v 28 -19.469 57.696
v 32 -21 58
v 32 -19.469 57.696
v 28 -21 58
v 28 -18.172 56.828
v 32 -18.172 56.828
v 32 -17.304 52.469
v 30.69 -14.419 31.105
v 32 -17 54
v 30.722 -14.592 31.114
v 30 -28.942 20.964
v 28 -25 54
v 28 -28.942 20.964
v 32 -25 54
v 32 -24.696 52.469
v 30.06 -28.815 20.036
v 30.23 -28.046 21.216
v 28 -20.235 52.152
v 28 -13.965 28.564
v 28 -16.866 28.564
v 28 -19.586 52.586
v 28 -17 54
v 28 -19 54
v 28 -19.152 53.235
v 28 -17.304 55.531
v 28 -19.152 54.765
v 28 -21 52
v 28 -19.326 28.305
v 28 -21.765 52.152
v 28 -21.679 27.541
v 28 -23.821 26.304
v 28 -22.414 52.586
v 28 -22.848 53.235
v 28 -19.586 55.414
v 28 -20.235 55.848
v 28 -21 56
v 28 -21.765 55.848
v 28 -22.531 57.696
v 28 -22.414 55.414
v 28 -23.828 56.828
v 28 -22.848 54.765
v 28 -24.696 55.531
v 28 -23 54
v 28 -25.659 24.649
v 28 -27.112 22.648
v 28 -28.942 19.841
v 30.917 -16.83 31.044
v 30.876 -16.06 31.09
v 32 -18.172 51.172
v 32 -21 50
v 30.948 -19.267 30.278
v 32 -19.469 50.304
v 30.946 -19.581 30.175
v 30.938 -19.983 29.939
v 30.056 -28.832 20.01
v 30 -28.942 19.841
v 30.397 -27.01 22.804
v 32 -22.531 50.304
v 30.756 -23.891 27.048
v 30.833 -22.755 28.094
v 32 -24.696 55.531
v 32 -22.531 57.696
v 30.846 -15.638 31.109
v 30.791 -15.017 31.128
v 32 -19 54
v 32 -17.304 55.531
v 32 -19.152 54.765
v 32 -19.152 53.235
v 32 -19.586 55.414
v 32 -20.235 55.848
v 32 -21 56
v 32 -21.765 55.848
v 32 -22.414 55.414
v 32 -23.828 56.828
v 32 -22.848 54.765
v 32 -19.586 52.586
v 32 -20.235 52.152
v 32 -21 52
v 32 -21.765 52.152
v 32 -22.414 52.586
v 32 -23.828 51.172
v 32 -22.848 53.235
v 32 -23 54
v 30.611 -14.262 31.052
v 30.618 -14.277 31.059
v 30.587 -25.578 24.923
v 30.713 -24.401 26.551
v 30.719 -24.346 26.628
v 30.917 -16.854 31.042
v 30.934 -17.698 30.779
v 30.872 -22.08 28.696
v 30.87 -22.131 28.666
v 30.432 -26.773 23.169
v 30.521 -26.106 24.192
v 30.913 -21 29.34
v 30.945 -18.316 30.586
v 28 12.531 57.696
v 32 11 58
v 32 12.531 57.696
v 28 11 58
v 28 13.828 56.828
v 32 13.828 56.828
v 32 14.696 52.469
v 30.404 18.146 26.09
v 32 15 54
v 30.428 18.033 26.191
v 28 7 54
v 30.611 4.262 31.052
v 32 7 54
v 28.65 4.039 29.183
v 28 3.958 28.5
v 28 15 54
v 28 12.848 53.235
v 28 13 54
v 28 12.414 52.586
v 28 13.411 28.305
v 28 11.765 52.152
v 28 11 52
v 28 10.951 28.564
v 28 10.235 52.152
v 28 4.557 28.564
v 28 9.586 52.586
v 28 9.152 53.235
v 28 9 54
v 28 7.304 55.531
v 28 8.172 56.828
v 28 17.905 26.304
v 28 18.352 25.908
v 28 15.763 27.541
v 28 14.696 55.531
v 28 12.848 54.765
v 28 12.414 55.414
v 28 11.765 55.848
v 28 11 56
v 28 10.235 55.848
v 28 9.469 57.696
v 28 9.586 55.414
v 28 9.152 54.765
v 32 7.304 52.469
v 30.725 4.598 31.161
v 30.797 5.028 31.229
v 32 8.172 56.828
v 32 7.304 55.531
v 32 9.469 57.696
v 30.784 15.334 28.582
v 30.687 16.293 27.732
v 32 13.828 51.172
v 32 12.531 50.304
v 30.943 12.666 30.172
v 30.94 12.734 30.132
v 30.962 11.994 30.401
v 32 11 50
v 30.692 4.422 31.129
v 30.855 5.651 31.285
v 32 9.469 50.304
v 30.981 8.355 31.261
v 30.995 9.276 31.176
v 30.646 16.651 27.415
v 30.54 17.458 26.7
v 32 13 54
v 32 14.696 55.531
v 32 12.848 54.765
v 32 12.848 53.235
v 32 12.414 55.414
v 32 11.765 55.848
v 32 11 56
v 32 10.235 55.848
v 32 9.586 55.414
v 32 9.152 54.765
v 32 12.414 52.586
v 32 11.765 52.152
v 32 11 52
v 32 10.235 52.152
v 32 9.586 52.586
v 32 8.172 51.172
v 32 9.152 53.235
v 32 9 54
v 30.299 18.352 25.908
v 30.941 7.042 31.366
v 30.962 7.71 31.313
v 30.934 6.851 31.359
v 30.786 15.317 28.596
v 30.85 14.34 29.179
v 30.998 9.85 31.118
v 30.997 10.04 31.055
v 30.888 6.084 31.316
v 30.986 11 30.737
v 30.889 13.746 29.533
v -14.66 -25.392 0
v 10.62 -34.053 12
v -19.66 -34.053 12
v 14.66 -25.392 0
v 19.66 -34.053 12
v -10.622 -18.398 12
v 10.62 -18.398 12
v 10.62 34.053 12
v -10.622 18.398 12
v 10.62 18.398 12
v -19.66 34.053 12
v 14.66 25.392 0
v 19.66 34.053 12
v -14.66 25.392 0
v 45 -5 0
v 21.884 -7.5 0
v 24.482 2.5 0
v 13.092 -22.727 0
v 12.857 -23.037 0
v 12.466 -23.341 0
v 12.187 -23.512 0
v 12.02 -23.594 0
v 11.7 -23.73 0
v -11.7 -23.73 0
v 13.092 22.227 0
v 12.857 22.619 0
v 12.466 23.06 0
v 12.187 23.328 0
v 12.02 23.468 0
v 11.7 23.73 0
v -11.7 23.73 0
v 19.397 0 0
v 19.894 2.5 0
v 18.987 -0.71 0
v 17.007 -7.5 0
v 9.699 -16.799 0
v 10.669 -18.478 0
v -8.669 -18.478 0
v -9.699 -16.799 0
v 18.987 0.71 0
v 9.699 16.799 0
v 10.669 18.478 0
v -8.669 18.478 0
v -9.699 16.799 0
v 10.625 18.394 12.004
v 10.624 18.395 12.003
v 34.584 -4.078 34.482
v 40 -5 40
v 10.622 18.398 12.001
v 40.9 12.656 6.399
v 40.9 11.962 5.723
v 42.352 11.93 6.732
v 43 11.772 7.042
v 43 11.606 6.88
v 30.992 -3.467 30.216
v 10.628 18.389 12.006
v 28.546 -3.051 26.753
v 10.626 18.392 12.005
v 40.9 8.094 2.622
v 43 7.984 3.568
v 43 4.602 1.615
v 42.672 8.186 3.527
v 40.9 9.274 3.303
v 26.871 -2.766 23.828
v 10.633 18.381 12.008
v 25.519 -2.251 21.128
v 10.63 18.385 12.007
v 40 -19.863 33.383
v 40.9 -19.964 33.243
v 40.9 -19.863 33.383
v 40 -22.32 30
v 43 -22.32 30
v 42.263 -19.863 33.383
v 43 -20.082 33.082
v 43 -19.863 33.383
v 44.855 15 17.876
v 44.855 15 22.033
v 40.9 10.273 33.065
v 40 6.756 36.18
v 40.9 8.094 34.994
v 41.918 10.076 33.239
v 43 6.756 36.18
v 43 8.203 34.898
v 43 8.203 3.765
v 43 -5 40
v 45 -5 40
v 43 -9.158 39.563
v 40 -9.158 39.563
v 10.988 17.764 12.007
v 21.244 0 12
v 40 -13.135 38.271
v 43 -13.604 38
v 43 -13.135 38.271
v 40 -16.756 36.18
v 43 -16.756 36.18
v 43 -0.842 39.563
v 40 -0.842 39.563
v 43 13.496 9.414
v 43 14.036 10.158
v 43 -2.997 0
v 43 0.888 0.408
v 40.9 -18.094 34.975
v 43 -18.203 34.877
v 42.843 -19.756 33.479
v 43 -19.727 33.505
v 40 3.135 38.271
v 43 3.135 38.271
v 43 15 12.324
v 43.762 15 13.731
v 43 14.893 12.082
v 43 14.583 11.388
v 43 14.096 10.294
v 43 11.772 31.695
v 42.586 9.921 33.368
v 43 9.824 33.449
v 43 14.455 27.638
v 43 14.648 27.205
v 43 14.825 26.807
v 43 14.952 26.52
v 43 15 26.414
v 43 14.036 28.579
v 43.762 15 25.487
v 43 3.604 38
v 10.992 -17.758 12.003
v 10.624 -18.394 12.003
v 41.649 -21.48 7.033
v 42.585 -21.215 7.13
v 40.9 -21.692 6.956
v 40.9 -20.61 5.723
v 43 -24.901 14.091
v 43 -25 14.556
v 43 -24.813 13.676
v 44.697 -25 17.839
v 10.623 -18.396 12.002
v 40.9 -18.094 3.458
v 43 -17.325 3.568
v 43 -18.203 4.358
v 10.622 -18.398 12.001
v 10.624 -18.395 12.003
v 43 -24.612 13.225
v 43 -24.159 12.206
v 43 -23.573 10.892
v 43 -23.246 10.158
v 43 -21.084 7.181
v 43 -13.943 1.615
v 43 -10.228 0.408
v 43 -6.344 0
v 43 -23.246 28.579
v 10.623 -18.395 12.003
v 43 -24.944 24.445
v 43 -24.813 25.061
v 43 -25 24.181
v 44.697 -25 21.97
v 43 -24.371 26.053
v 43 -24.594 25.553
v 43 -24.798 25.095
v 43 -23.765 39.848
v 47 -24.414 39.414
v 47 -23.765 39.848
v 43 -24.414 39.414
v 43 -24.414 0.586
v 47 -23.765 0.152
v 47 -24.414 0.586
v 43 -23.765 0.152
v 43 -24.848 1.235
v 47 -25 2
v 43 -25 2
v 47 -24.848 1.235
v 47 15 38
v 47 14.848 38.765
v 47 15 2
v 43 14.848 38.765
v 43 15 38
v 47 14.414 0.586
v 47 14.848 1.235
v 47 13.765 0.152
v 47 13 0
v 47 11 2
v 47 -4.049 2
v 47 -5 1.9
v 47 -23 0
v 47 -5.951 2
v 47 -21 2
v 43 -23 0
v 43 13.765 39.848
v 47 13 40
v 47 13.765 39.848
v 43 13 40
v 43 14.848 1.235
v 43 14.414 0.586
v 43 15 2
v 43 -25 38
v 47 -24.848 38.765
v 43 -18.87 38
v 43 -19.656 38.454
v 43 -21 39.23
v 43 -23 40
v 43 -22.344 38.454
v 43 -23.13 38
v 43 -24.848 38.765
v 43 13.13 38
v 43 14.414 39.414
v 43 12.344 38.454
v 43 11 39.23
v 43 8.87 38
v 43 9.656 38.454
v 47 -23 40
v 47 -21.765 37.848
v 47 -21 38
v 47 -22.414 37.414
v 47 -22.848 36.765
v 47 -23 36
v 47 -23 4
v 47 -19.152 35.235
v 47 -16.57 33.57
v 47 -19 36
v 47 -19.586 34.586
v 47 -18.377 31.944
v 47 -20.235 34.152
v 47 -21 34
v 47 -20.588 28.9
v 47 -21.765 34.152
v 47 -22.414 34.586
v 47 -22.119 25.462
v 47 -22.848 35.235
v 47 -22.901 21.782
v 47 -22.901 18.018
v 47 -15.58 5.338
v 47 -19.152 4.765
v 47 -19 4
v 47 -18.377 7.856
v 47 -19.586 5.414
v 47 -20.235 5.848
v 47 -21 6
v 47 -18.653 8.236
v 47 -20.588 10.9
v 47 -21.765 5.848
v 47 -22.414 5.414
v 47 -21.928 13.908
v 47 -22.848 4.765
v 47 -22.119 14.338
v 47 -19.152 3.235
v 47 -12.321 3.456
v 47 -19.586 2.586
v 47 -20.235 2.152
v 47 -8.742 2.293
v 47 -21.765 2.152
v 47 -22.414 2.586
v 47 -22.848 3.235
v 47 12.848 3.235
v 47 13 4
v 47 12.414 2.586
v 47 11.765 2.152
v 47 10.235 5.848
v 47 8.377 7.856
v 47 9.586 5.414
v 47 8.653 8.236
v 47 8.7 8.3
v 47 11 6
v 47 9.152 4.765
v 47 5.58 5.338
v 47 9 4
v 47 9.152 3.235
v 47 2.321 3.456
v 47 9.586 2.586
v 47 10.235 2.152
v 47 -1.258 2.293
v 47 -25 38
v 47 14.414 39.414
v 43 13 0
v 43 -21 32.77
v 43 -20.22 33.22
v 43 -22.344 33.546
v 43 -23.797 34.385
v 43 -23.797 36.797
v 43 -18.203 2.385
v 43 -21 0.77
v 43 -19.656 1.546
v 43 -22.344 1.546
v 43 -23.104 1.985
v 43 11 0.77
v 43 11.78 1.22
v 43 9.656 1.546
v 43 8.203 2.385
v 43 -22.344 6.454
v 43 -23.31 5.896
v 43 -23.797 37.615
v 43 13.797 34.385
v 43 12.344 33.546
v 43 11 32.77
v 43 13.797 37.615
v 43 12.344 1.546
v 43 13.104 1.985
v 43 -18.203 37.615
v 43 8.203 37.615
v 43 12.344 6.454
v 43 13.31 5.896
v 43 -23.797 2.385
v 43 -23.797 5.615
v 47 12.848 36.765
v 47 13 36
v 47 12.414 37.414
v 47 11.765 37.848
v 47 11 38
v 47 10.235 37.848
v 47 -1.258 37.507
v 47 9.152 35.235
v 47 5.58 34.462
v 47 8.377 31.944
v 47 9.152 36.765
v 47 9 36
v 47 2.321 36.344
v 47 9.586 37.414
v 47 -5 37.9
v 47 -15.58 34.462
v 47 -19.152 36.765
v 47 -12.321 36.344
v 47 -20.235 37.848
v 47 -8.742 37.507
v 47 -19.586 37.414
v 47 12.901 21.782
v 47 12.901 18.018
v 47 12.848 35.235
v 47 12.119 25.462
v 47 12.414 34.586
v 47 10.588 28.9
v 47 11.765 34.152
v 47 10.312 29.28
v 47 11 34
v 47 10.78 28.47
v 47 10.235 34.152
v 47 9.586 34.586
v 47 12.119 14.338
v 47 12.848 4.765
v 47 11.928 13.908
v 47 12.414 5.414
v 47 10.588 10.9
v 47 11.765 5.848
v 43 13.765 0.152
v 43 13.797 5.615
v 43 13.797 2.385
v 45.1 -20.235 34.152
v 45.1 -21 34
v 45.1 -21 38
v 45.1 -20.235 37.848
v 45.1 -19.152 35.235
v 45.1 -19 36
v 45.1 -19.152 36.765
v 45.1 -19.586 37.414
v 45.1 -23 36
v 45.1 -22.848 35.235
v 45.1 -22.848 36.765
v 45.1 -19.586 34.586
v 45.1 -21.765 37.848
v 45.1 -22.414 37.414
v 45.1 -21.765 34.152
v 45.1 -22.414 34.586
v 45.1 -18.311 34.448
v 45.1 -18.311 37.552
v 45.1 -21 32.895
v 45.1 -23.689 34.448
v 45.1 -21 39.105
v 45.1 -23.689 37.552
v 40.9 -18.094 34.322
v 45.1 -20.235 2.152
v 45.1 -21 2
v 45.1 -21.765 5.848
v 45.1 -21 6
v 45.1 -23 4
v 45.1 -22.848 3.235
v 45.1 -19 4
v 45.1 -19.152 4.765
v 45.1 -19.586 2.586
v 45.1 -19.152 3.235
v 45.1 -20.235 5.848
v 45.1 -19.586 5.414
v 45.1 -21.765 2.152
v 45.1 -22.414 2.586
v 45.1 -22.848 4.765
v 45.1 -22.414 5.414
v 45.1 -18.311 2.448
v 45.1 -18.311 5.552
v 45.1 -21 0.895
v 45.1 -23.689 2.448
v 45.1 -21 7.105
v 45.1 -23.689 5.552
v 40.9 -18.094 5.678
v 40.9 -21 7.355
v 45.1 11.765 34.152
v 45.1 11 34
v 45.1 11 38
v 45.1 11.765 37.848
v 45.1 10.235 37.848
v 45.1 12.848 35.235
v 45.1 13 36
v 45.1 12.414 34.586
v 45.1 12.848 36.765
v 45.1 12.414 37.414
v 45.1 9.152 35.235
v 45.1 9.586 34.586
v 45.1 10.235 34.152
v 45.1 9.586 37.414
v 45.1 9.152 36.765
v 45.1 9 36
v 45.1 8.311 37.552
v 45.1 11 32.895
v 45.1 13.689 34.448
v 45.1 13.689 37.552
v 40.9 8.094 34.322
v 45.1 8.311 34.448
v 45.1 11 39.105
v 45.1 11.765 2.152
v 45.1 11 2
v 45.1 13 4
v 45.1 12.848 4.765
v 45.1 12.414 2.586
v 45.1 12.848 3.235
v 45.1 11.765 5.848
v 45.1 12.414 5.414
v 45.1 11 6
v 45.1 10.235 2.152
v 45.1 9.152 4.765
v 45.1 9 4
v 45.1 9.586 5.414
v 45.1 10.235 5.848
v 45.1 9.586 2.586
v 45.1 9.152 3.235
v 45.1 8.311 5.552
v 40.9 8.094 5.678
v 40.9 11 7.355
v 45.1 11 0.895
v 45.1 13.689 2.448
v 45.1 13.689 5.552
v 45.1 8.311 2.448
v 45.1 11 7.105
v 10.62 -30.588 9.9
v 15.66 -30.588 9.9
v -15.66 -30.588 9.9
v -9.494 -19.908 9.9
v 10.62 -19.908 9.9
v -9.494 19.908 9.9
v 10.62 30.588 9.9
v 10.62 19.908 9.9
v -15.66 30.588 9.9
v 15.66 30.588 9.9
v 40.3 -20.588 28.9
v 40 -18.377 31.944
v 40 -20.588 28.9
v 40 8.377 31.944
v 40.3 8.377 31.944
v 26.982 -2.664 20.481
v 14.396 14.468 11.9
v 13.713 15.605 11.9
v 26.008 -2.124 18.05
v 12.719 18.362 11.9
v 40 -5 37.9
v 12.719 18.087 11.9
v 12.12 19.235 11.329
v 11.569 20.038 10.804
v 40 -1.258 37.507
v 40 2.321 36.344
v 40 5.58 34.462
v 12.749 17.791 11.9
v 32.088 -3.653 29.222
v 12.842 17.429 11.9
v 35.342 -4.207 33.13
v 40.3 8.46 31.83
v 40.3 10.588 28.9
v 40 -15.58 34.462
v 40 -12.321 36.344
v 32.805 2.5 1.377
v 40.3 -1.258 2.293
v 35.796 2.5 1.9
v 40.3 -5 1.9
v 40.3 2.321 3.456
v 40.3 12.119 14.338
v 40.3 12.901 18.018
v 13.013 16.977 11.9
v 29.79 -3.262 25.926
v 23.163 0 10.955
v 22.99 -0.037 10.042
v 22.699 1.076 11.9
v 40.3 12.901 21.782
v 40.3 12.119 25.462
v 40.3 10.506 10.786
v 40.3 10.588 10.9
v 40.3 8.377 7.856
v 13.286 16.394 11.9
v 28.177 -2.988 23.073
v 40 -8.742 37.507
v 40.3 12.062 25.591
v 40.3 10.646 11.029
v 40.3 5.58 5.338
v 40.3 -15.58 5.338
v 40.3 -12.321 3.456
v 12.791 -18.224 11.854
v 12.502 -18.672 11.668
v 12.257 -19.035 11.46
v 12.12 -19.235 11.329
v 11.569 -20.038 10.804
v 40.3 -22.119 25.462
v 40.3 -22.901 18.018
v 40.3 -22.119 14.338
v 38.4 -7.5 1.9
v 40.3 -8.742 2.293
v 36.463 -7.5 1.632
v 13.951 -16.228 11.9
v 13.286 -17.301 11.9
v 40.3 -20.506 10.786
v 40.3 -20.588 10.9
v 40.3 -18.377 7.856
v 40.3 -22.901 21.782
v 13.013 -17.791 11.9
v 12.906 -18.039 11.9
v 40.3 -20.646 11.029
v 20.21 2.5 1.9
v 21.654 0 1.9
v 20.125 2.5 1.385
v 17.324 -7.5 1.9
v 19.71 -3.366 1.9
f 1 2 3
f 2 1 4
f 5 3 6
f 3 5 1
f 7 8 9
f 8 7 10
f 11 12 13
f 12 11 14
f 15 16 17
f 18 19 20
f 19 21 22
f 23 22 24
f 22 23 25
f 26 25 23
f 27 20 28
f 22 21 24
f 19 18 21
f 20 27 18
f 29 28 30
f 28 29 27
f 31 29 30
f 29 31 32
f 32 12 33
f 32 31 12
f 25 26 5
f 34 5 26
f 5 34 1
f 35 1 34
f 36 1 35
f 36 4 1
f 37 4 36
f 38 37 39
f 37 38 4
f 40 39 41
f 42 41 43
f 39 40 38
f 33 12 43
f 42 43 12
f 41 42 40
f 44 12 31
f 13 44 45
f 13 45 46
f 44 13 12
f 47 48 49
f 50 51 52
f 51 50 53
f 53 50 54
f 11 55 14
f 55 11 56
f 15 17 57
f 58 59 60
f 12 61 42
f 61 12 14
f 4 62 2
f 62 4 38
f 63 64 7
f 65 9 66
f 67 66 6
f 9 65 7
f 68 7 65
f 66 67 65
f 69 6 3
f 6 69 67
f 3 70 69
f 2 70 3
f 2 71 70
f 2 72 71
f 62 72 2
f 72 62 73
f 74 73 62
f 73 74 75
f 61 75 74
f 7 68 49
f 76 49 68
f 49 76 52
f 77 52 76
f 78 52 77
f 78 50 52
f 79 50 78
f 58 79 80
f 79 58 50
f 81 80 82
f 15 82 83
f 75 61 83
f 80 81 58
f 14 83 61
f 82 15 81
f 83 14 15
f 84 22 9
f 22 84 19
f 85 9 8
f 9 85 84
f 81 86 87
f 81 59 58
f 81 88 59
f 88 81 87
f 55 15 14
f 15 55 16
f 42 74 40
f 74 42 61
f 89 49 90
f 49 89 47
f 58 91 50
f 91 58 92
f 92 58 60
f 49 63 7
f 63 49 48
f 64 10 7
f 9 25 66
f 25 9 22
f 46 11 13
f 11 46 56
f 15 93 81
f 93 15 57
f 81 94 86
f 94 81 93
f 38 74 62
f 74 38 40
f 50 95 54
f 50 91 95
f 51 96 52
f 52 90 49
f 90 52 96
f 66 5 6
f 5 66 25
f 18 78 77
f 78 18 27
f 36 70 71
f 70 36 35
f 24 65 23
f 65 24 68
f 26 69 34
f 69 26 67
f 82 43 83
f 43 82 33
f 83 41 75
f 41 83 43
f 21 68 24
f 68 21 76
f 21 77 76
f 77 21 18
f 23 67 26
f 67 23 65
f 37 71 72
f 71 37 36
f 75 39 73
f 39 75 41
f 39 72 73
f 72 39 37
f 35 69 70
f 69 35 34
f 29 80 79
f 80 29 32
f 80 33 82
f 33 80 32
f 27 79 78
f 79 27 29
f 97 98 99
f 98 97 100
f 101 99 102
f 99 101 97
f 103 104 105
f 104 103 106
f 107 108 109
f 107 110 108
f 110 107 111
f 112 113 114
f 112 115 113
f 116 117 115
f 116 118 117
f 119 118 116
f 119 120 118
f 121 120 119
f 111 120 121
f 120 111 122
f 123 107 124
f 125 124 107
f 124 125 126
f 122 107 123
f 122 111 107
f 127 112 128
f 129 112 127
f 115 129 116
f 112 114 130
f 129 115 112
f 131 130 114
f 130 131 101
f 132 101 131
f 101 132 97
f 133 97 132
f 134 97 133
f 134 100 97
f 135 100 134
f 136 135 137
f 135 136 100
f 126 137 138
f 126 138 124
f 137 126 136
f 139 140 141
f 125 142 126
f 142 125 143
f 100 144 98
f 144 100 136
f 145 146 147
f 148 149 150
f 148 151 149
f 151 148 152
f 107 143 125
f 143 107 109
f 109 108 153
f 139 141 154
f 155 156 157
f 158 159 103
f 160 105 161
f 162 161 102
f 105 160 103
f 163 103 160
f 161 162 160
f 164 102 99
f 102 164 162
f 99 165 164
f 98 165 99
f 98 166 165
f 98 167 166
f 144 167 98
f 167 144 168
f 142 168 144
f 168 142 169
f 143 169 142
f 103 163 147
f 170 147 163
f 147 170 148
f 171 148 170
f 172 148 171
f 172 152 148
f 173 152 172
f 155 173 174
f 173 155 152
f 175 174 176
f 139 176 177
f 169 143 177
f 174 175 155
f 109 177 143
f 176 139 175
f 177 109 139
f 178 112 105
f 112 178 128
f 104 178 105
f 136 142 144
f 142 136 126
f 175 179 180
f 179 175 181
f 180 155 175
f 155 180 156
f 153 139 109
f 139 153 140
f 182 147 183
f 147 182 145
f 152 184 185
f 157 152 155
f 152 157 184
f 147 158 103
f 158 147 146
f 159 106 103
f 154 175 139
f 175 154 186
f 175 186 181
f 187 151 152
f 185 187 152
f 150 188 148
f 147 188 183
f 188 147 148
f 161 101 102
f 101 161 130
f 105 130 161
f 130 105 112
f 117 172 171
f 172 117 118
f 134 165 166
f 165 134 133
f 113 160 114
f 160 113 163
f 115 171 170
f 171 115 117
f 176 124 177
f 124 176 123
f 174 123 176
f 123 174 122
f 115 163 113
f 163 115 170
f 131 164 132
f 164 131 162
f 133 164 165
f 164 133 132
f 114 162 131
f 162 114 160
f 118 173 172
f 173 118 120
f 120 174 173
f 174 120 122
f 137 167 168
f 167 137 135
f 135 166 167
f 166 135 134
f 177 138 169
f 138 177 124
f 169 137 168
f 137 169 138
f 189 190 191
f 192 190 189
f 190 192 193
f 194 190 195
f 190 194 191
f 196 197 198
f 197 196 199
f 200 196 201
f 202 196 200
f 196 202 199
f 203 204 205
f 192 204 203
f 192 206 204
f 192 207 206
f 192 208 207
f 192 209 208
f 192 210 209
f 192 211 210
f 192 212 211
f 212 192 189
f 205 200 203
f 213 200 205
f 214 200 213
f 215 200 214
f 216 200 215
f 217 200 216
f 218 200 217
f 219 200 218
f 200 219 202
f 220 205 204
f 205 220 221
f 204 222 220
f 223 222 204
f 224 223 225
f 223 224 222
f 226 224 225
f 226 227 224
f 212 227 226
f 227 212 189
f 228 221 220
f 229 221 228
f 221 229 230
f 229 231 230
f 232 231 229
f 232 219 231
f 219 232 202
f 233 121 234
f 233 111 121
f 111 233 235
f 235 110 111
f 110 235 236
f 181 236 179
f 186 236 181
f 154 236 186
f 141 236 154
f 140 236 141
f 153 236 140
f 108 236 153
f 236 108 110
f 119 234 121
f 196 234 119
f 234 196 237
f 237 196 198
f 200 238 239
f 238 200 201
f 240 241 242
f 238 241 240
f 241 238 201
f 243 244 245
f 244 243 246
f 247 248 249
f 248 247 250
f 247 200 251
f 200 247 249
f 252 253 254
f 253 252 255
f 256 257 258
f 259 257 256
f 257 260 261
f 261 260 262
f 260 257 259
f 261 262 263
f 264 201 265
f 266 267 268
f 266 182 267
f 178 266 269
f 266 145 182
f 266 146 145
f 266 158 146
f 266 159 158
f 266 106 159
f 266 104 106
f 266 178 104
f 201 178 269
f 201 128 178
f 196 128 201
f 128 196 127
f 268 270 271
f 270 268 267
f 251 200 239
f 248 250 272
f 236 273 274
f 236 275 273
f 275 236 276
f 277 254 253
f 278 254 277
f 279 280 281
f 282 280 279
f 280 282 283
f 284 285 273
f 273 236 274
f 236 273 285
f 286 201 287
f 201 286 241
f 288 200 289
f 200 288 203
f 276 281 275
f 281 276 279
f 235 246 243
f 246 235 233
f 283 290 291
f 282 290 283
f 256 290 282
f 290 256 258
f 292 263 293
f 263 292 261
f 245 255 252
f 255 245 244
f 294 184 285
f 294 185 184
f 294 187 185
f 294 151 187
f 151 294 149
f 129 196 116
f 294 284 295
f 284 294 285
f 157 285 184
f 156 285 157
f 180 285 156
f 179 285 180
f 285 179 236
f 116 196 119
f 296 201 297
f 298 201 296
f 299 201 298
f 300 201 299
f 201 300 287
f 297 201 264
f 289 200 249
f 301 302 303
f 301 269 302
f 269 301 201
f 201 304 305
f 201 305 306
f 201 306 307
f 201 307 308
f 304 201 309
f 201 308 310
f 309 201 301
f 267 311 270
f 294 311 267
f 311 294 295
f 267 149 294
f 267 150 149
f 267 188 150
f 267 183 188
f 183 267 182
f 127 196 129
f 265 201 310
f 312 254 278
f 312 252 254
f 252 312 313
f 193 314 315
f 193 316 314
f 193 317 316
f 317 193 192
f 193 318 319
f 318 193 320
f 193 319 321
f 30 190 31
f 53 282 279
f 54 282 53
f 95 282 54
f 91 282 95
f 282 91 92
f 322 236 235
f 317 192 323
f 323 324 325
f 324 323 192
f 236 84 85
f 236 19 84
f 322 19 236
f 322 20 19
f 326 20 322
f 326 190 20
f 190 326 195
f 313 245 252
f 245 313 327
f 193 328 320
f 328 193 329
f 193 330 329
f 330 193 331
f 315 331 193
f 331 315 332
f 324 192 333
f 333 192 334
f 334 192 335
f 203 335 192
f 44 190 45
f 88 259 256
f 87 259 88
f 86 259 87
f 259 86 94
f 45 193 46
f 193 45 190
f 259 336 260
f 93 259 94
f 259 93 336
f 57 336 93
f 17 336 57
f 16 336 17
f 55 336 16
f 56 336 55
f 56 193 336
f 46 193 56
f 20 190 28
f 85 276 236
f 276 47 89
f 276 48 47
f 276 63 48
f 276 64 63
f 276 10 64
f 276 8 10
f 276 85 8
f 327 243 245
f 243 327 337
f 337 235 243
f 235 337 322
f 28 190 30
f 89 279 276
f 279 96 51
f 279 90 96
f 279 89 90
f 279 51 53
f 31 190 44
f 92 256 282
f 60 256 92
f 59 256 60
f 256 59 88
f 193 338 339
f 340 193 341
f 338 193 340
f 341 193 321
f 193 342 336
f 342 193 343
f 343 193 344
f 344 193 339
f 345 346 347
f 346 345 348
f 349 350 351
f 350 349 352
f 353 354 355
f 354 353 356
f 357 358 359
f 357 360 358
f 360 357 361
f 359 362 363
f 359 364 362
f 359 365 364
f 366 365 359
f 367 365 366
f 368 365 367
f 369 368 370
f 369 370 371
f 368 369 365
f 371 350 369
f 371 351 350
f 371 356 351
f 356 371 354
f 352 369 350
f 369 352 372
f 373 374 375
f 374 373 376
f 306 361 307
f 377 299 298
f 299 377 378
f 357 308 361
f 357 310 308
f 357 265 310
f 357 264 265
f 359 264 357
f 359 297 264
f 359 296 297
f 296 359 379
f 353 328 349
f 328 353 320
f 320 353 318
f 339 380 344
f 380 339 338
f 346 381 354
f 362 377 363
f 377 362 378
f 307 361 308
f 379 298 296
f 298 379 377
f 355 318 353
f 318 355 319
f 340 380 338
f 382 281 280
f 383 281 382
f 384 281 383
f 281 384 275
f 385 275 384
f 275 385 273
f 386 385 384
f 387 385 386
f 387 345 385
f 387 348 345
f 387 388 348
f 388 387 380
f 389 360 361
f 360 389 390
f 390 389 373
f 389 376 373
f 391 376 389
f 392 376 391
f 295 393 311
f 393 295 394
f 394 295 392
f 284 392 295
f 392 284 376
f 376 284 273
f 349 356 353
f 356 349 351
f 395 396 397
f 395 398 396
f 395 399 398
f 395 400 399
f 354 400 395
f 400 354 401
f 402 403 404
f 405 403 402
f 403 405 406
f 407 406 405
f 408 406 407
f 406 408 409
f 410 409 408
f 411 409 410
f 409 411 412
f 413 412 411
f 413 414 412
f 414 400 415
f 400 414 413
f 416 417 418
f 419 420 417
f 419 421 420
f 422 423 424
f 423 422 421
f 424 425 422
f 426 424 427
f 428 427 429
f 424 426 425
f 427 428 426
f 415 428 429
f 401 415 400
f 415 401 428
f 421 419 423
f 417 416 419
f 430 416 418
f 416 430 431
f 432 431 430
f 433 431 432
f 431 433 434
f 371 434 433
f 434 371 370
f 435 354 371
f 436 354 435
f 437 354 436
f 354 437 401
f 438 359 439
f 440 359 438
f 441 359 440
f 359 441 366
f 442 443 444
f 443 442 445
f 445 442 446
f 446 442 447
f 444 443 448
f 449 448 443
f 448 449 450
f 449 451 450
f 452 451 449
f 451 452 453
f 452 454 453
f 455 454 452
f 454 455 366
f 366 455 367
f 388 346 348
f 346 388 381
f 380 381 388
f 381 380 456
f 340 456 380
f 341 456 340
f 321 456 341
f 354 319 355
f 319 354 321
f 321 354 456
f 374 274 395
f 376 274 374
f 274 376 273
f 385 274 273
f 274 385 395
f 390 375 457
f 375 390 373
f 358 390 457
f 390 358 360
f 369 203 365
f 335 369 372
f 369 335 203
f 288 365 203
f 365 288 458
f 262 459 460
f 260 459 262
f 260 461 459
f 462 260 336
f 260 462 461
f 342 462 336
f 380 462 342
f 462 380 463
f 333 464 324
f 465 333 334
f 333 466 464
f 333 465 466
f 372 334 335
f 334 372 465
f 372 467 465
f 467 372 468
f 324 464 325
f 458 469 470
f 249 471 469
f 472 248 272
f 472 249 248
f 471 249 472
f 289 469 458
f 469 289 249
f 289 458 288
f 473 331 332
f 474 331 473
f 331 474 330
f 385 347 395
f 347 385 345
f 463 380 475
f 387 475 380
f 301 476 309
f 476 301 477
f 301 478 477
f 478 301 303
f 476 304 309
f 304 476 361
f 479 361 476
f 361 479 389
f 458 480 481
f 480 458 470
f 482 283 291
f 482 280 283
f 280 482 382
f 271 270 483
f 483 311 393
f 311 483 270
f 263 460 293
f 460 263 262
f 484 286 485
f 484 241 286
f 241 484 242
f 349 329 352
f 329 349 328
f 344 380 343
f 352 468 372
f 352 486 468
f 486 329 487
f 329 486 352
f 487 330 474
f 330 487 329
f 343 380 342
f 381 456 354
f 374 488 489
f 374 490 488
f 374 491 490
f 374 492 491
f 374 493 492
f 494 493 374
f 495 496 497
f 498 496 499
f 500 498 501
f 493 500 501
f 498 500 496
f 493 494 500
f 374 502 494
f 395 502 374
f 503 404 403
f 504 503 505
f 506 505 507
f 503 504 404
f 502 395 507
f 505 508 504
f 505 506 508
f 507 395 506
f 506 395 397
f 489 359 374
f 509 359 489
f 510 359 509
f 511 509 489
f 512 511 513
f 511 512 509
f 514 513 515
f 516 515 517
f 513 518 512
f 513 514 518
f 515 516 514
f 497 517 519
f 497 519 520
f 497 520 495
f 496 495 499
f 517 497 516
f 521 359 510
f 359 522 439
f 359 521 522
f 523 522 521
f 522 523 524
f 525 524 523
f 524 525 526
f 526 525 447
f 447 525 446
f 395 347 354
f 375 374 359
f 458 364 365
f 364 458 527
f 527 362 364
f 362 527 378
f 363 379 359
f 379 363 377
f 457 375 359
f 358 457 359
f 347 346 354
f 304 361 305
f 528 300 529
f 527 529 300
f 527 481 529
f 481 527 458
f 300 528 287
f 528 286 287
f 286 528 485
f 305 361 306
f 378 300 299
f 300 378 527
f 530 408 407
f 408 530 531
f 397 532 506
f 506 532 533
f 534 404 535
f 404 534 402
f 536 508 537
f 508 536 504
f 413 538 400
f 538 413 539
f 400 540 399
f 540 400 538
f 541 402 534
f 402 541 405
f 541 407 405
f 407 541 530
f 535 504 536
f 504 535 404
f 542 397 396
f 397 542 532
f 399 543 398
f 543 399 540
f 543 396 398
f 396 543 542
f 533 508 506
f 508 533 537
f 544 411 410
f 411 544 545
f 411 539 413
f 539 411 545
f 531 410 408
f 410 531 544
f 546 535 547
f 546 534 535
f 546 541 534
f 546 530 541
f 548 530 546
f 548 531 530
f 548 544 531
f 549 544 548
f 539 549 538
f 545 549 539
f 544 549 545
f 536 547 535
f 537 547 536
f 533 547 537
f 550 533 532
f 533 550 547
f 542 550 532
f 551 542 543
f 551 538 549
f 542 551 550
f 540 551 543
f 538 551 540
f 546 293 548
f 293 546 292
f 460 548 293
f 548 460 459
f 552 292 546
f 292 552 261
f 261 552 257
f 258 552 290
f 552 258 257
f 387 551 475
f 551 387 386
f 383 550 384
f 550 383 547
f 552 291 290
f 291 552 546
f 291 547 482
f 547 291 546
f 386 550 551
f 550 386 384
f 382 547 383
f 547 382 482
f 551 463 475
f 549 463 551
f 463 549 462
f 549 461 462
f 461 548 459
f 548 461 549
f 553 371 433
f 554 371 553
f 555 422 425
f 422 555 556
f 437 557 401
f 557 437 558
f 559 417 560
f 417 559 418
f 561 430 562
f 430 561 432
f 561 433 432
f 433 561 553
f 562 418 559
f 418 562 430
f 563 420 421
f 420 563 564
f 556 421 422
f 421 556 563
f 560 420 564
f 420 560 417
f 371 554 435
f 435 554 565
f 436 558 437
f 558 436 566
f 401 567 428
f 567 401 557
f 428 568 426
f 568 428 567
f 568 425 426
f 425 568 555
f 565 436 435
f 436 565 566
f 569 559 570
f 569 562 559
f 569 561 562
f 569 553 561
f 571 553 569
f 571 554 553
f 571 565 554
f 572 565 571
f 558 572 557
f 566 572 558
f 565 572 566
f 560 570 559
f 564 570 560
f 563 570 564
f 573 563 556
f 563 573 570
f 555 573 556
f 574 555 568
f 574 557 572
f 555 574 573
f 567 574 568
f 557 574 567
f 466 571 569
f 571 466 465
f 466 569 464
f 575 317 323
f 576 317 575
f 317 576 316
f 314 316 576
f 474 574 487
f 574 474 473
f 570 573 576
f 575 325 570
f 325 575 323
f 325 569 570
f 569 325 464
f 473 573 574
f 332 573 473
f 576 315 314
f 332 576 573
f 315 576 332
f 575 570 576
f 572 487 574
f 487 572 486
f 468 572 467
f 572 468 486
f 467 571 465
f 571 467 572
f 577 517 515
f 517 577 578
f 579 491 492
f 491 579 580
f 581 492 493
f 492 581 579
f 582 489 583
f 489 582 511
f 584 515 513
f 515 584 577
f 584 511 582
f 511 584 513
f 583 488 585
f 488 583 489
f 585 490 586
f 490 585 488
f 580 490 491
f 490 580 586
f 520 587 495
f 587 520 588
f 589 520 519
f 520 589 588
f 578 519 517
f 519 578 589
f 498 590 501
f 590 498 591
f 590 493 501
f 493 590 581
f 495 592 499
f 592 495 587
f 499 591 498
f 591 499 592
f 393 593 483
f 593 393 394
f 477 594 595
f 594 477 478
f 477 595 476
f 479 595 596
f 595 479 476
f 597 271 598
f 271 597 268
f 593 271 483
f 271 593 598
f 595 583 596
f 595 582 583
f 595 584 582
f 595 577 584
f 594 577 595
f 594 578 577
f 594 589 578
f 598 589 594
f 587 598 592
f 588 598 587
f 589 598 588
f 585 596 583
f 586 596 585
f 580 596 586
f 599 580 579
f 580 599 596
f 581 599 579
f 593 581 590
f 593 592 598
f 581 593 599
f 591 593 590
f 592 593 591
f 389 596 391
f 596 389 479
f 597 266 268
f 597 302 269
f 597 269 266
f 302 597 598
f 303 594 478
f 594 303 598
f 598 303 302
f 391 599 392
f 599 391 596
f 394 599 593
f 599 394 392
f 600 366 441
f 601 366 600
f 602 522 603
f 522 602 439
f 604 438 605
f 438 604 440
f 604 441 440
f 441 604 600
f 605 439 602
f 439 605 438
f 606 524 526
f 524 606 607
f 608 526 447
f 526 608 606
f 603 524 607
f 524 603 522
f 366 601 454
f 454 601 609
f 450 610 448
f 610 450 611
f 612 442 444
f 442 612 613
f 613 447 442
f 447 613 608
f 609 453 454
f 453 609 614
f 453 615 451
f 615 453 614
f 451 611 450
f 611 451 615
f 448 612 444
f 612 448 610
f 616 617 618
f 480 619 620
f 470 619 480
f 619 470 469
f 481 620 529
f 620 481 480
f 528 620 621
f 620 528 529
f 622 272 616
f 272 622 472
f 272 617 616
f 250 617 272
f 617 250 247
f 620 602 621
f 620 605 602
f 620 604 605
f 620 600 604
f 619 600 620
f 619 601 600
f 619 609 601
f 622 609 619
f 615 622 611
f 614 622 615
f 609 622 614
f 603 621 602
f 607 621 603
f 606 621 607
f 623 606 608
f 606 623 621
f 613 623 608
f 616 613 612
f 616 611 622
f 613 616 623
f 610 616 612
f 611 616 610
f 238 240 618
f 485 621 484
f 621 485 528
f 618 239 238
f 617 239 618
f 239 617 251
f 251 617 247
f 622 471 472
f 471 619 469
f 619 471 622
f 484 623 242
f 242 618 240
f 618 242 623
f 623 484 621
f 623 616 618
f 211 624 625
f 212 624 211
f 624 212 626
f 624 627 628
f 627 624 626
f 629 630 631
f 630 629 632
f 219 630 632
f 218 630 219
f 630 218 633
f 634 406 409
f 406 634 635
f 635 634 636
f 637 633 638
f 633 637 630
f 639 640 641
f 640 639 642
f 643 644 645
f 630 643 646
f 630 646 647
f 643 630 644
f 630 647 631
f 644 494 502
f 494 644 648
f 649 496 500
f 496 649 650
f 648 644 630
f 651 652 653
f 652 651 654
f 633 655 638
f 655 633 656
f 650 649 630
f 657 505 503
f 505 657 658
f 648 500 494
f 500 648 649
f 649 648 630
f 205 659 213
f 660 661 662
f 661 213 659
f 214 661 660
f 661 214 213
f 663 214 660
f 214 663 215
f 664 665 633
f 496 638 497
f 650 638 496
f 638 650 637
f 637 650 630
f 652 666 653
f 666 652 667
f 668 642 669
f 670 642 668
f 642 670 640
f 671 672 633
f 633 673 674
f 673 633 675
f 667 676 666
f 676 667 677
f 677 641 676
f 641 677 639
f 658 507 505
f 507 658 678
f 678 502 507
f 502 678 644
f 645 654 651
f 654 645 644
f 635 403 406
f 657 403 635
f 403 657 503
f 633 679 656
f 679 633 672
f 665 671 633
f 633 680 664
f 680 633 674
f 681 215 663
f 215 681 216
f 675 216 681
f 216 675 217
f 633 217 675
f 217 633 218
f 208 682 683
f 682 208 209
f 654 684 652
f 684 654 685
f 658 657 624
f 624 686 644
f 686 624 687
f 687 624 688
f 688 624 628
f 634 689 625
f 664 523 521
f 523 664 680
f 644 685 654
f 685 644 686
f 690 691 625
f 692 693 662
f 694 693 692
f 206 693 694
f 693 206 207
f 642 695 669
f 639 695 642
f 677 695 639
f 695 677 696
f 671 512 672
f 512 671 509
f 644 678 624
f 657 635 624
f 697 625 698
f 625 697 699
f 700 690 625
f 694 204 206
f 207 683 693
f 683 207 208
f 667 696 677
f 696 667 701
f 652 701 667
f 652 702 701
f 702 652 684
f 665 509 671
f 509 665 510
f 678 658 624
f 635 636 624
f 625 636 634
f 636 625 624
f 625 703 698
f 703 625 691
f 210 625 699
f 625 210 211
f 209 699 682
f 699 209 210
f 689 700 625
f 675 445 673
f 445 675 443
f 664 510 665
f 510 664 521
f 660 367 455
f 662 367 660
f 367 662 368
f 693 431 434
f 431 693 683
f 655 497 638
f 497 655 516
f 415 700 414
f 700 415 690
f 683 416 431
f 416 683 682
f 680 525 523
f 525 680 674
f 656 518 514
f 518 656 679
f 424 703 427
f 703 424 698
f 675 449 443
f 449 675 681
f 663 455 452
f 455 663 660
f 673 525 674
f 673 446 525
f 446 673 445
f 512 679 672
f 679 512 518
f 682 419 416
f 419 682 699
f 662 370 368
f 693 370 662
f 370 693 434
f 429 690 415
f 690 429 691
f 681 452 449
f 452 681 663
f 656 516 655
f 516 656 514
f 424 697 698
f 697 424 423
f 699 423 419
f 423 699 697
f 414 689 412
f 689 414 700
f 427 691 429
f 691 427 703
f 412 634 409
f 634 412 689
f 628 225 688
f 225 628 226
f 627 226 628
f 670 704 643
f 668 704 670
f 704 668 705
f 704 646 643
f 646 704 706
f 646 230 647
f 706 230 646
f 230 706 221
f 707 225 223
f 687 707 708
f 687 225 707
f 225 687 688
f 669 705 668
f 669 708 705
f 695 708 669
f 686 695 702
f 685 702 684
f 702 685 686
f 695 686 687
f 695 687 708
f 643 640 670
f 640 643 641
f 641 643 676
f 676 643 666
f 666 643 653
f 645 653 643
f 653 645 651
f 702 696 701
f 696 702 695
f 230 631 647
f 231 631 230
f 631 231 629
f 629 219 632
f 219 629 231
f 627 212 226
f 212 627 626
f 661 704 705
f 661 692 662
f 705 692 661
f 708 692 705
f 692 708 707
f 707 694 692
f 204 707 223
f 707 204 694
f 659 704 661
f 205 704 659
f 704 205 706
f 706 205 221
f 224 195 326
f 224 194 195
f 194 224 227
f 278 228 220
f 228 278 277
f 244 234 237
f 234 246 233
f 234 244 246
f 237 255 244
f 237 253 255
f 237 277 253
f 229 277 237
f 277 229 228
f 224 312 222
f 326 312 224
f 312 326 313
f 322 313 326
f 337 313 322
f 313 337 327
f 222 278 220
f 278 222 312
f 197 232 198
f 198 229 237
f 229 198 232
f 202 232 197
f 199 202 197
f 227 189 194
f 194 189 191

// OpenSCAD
hot_rad = 30/2/cos(30);
hotend_x=25;
fan_x = 15+5;

hotend_y=-5;

thickness = 10;
wall=2;
slop=.2;

fan_hole = (40-wall-wall)/2;
mount_drop = 18;
fan_z = fan_hole+wall;

fan_mount();
//bowden_fan();

%cylinder(r=hot_rad, h=20, center=true);
%translate([-23,0,0]) cylinder(r=hot_rad, h=20, center=true);

m3_cap_rad = 4;
m3_rad = 2;
m3_nut_rad = 6.01/2+.1;

facets = 6;

module fan_mount(){
    difference(){
        union(){
            //core
            cylinder(r1=hot_rad+thickness+wall, r2=hot_rad+thickness*2+wall, h=thickness+wall, $fn=facets);
            
            hull(){
                intersection(){
                    difference(){
                        cylinder(r1=hot_rad+thickness+wall, r2=hot_rad+thickness*2+wall, h=thickness+wall, $fn=facets);
                        translate([0,0,-.5]) cylinder(r1=hot_rad+wall, r2=hot_rad+wall+wall, h=thickness+wall+1, $fn=facets);
                    }
                    translate([50+hot_rad-6.7,50,50]) cube([100,100,100], center=true);
                }
                translate([hotend_x+fan_x-5,hotend_y,fan_z]) rotate([0,90,0]) cylinder(r=fan_hole+wall, h=5);
            }
            
            hull(){
                intersection(){
                    difference(){
                        cylinder(r1=hot_rad+thickness+wall, r2=hot_rad+thickness*2+wall, h=thickness+wall, $fn=facets);
                        translate([0,0,-.5]) cylinder(r1=hot_rad+wall, r2=hot_rad+wall+wall, h=thickness+wall+1, $fn=facets);
                    }
                    translate([50+hot_rad-6.7,-50,50]) cube([100,100,100], center=true);
                }
                translate([hotend_x+fan_x-5,hotend_y,fan_z]) rotate([0,90,0]) cylinder(r=fan_hole+wall, h=5);
            }
            
            //fan mount
            translate([hotend_x+fan_x,hotend_y,fan_z]) rotate([0,90,0]){
                hull() for(i=[0:90:359]) rotate([0,0,i]) {
                    #translate([20-wall,20-wall,-wall]) cylinder(r=wall,h=wall*2, $fn=16);
                }    
            }
            
            //mounting lugs above fan
            translate([hotend_x+fan_x,hotend_y,fan_z]) rotate([0,90,0]){
                for(i=[-16, 16]) difference(){
                    hull(){
                        translate([-16-mount_drop,i,-fan_x+3]) cylinder(r=m3_rad+wall, h=wall*2, $fn=16);
                        translate([0,i,-fan_x+3]) cylinder(r=m3_cap_rad*2, h=wall);
                    }
                    translate([-16-mount_drop,i,-fan_x+3-.1]) cylinder(r=m3_rad, h=wall*2+1, $fn=16);
                }
            }
        }
        
        //center cutout
        translate([0,0,-.5]) cylinder(r1=hot_rad+wall, r2=hot_rad+wall+wall, h=thickness+wall+1, $fn=facets);
                
        //front cutout
        translate([-(hot_rad+thickness*2+wall),0,0]) cylinder(r=hot_rad+thickness*2+wall, h=thickness+wall*10, center=true, $fn=facets);
        
        //fan holes
        translate([hotend_x+fan_x,hotend_y,fan_z]) rotate([0,90,0]){
            for(i=[-16, 16]) for(j=[-16, 16]) {
                #translate([j,i,-.1]) cylinder(r=m3_rad, h=wall+.2, $fn=16);
                translate([j,i,-wall*2-.1]) cylinder(r2=m3_nut_rad, r1=m3_nut_rad+.25, h=wall*2+.2, $fn=6);
            }
        }
        
        //air path
        translate([0,0,-.1]) difference(){
            union(){
                translate([-wall,0,0]) cylinder(r1=hot_rad+thickness, r2=hot_rad+thickness*2-wall, h=thickness, $fn=facets);
                
                hull(){
                    intersection(){
                        difference(){
                            translate([-wall,0,0]) cylinder(r1=hot_rad+thickness, r2=hot_rad+thickness*2-wall, h=thickness, $fn=facets);
                            translate([0,0,-.5]) cylinder(r1=hot_rad+wall*2, r2=hot_rad+wall*3, h=thickness+wall+1, $fn=facets);
                        }
                        translate([50+hot_rad-6.7,50,50]) cube([100,100,100], center=true);
                    }
                    translate([hotend_x+fan_x-5,hotend_y,fan_z]) rotate([0,90,0]) cylinder(r=fan_hole, h=.3);
                }
                
                hull(){
                    intersection(){
                        difference(){
                            translate([-wall,0,0]) cylinder(r1=hot_rad+thickness, r2=hot_rad+thickness*2-wall, h=thickness, $fn=facets);
                            translate([0,0,-.5]) cylinder(r1=hot_rad+wall+wall, r2=hot_rad+wall+wall+wall, h=thickness+wall+1, $fn=facets);
                        }
                        translate([50+hot_rad-6.7,-50,50]) cube([100,100,100], center=true);
                    }
                    translate([hotend_x+fan_x-5,hotend_y,fan_z]) rotate([0,90,0]) cylinder(r=fan_hole, h=.3);
                }
                
                translate([hotend_x+fan_x-5,hotend_y,fan_z]) rotate([0,90,0]) cylinder(r=fan_hole, h=wall+1+5);
            }
            cylinder(r1=hot_rad+wall+wall, r2=hot_rad+wall+wall+wall, h=thickness+wall, $fn=facets);
            translate([-(hot_rad+thickness*2),0,0]) cylinder(r=hot_rad+thickness*2+wall, h=thickness+wall*10, center=true, $fn=facets);
            translate([0,-5+hotend_y/2,0])cube([100,10,wall]);
        }
    }
}

duct_angle=-5;
duct_jut = -5;

module bowden_fan(){
    duct_w = 15+slop;
    duct_h = 20+slop;
    duct_offset=40;
    
    mount_height = 46;
    
    offset = -20;
    difference(){
        union(){
            //core
            hull(){
                cylinder(r1=hot_rad+thickness+wall, r2=hot_rad+thickness*2+wall, h=thickness+wall, $fn=facets);
                translate([offset,0,0]) cylinder(r1=hot_rad+thickness+wall, r2=hot_rad+thickness*2+wall, h=thickness+wall, $fn=facets);
            }
            
            //connection to duct
            hull(){
                intersection(){
                    cylinder(r1=hot_rad+thickness+wall, r2=hot_rad+thickness*2+wall, h=thickness+wall, $fn=facets);
                    translate([hot_rad+wall*2,0,0]) cube([1,200,200], center=true);
                }
                translate([duct_offset,duct_jut,duct_h/2+wall]) rotate([0,0,duct_angle]) cube([1,duct_w+wall*2, duct_h+wall*2], center=true);
            }
            
            //the duct connector
            translate([duct_offset,duct_jut,0]) rotate([0,0,duct_angle]) duct();
            
            //mounting lugs
            for(i=[0,-30,-50]) difference(){
                translate([i,hot_rad+wall*2,0]) hull(){
                    translate([16,0,thickness]) rotate([90,0,0]) cylinder(r=m3_cap_rad+wall*2, h=wall, center=true);
                    translate([0,0,mount_height]) rotate([90,0,0]) cylinder(r=m3_cap_rad+wall, h=wall, center=true);
                }
                
                //mounting holes up top
                translate([i,hot_rad+wall*2,mount_height]) rotate([90,0,0]) cylinder(r=m3_rad+slop, h=20, center=true);
            }
        }
        
        //connection to duct airflow
        hull(){
            intersection(){
                translate([0,0,wall]) cylinder(r1=hot_rad+thickness, r2=hot_rad+thickness*2, h=thickness-wall, $fn=facets);
                translate([hot_rad+wall*3,0,0]) cube([1,200,200], center=true);
            }
            translate([duct_offset,duct_jut,duct_h/2+wall]) rotate([0,0,duct_angle]) cube([1.2,duct_w, duct_h], center=true);
        }
        
        //center cutout
        translate([0,0,-.5]) hull(){
            cylinder(r1=hot_rad+wall, r2=hot_rad+wall*3, h=thickness+wall+1, $fn=facets);
            translate([2*offset,0,0]) cylinder(r1=hot_rad+wall, r2=hot_rad+wall*3, h=thickness+wall+1, $fn=facets);
        }
        
        //air path
        difference(){
            //core
            translate([0,0,-.1]) hull(){
                cylinder(r1=hot_rad+thickness, r2=hot_rad+thickness*2-wall, h=thickness, $fn=facets);
                translate([offset+wall,0,0]) cylinder(r1=hot_rad+thickness, r2=hot_rad+thickness*2-wall, h=thickness, $fn=facets);
            }
            
            //keep the center walls in place
            translate([0,0,-.5]) hull(){
                cylinder(r1=hot_rad+wall*2, r2=hot_rad+wall*4, h=thickness+wall+1, $fn=facets);
                translate([2*offset,0,0]) cylinder(r1=hot_rad+wall*2, r2=hot_rad+wall*4, h=thickness+wall+1, $fn=facets);
            }
            
            //bottom on the near side
            translate([10,0,-.5]) cylinder(r1=hot_rad+wall*2, r2=hot_rad+wall*2.5, h=wall+.5, $fn=facets);
        }
    }
}

module duct(){
    duct_w = 15+slop;
    duct_h = 20+slop;
    rad = 20;
    
    translate([0,0,rad+wall+duct_h/2]) rotate([-90,0,0]) union(){
        intersection(){
            rotate_extrude(angle = 90, convexity = 2){
                translate([rad,0,0])
                difference(){
                    square([duct_h+wall*2, duct_w+wall*2], center=true);
                    square([duct_h, duct_w], center=true);
                }
            }
            translate([0,0,-100]) cube([200,200,200]);
        }
        
        translate([rad,0,0]) rotate([90,0,0]) translate([0,0,8]) difference(){
            hull(){
                translate([0,0,-8]) cube([duct_h+wall*2,duct_w+wall*2,.1], center=true);
                #translate([duct_h/2+wall/2,0,8]) cube([wall,duct_w+wall*2,.1], center=true);
            }
            
            //hollow center
            cube([duct_h,duct_w,16.3], center=true);
            
            //slot for the clip
            translate([wall+1,0,(12-16)/2]) cube([duct_h+wall*2,2,12], center=true);
        }
        
    }
    
}
